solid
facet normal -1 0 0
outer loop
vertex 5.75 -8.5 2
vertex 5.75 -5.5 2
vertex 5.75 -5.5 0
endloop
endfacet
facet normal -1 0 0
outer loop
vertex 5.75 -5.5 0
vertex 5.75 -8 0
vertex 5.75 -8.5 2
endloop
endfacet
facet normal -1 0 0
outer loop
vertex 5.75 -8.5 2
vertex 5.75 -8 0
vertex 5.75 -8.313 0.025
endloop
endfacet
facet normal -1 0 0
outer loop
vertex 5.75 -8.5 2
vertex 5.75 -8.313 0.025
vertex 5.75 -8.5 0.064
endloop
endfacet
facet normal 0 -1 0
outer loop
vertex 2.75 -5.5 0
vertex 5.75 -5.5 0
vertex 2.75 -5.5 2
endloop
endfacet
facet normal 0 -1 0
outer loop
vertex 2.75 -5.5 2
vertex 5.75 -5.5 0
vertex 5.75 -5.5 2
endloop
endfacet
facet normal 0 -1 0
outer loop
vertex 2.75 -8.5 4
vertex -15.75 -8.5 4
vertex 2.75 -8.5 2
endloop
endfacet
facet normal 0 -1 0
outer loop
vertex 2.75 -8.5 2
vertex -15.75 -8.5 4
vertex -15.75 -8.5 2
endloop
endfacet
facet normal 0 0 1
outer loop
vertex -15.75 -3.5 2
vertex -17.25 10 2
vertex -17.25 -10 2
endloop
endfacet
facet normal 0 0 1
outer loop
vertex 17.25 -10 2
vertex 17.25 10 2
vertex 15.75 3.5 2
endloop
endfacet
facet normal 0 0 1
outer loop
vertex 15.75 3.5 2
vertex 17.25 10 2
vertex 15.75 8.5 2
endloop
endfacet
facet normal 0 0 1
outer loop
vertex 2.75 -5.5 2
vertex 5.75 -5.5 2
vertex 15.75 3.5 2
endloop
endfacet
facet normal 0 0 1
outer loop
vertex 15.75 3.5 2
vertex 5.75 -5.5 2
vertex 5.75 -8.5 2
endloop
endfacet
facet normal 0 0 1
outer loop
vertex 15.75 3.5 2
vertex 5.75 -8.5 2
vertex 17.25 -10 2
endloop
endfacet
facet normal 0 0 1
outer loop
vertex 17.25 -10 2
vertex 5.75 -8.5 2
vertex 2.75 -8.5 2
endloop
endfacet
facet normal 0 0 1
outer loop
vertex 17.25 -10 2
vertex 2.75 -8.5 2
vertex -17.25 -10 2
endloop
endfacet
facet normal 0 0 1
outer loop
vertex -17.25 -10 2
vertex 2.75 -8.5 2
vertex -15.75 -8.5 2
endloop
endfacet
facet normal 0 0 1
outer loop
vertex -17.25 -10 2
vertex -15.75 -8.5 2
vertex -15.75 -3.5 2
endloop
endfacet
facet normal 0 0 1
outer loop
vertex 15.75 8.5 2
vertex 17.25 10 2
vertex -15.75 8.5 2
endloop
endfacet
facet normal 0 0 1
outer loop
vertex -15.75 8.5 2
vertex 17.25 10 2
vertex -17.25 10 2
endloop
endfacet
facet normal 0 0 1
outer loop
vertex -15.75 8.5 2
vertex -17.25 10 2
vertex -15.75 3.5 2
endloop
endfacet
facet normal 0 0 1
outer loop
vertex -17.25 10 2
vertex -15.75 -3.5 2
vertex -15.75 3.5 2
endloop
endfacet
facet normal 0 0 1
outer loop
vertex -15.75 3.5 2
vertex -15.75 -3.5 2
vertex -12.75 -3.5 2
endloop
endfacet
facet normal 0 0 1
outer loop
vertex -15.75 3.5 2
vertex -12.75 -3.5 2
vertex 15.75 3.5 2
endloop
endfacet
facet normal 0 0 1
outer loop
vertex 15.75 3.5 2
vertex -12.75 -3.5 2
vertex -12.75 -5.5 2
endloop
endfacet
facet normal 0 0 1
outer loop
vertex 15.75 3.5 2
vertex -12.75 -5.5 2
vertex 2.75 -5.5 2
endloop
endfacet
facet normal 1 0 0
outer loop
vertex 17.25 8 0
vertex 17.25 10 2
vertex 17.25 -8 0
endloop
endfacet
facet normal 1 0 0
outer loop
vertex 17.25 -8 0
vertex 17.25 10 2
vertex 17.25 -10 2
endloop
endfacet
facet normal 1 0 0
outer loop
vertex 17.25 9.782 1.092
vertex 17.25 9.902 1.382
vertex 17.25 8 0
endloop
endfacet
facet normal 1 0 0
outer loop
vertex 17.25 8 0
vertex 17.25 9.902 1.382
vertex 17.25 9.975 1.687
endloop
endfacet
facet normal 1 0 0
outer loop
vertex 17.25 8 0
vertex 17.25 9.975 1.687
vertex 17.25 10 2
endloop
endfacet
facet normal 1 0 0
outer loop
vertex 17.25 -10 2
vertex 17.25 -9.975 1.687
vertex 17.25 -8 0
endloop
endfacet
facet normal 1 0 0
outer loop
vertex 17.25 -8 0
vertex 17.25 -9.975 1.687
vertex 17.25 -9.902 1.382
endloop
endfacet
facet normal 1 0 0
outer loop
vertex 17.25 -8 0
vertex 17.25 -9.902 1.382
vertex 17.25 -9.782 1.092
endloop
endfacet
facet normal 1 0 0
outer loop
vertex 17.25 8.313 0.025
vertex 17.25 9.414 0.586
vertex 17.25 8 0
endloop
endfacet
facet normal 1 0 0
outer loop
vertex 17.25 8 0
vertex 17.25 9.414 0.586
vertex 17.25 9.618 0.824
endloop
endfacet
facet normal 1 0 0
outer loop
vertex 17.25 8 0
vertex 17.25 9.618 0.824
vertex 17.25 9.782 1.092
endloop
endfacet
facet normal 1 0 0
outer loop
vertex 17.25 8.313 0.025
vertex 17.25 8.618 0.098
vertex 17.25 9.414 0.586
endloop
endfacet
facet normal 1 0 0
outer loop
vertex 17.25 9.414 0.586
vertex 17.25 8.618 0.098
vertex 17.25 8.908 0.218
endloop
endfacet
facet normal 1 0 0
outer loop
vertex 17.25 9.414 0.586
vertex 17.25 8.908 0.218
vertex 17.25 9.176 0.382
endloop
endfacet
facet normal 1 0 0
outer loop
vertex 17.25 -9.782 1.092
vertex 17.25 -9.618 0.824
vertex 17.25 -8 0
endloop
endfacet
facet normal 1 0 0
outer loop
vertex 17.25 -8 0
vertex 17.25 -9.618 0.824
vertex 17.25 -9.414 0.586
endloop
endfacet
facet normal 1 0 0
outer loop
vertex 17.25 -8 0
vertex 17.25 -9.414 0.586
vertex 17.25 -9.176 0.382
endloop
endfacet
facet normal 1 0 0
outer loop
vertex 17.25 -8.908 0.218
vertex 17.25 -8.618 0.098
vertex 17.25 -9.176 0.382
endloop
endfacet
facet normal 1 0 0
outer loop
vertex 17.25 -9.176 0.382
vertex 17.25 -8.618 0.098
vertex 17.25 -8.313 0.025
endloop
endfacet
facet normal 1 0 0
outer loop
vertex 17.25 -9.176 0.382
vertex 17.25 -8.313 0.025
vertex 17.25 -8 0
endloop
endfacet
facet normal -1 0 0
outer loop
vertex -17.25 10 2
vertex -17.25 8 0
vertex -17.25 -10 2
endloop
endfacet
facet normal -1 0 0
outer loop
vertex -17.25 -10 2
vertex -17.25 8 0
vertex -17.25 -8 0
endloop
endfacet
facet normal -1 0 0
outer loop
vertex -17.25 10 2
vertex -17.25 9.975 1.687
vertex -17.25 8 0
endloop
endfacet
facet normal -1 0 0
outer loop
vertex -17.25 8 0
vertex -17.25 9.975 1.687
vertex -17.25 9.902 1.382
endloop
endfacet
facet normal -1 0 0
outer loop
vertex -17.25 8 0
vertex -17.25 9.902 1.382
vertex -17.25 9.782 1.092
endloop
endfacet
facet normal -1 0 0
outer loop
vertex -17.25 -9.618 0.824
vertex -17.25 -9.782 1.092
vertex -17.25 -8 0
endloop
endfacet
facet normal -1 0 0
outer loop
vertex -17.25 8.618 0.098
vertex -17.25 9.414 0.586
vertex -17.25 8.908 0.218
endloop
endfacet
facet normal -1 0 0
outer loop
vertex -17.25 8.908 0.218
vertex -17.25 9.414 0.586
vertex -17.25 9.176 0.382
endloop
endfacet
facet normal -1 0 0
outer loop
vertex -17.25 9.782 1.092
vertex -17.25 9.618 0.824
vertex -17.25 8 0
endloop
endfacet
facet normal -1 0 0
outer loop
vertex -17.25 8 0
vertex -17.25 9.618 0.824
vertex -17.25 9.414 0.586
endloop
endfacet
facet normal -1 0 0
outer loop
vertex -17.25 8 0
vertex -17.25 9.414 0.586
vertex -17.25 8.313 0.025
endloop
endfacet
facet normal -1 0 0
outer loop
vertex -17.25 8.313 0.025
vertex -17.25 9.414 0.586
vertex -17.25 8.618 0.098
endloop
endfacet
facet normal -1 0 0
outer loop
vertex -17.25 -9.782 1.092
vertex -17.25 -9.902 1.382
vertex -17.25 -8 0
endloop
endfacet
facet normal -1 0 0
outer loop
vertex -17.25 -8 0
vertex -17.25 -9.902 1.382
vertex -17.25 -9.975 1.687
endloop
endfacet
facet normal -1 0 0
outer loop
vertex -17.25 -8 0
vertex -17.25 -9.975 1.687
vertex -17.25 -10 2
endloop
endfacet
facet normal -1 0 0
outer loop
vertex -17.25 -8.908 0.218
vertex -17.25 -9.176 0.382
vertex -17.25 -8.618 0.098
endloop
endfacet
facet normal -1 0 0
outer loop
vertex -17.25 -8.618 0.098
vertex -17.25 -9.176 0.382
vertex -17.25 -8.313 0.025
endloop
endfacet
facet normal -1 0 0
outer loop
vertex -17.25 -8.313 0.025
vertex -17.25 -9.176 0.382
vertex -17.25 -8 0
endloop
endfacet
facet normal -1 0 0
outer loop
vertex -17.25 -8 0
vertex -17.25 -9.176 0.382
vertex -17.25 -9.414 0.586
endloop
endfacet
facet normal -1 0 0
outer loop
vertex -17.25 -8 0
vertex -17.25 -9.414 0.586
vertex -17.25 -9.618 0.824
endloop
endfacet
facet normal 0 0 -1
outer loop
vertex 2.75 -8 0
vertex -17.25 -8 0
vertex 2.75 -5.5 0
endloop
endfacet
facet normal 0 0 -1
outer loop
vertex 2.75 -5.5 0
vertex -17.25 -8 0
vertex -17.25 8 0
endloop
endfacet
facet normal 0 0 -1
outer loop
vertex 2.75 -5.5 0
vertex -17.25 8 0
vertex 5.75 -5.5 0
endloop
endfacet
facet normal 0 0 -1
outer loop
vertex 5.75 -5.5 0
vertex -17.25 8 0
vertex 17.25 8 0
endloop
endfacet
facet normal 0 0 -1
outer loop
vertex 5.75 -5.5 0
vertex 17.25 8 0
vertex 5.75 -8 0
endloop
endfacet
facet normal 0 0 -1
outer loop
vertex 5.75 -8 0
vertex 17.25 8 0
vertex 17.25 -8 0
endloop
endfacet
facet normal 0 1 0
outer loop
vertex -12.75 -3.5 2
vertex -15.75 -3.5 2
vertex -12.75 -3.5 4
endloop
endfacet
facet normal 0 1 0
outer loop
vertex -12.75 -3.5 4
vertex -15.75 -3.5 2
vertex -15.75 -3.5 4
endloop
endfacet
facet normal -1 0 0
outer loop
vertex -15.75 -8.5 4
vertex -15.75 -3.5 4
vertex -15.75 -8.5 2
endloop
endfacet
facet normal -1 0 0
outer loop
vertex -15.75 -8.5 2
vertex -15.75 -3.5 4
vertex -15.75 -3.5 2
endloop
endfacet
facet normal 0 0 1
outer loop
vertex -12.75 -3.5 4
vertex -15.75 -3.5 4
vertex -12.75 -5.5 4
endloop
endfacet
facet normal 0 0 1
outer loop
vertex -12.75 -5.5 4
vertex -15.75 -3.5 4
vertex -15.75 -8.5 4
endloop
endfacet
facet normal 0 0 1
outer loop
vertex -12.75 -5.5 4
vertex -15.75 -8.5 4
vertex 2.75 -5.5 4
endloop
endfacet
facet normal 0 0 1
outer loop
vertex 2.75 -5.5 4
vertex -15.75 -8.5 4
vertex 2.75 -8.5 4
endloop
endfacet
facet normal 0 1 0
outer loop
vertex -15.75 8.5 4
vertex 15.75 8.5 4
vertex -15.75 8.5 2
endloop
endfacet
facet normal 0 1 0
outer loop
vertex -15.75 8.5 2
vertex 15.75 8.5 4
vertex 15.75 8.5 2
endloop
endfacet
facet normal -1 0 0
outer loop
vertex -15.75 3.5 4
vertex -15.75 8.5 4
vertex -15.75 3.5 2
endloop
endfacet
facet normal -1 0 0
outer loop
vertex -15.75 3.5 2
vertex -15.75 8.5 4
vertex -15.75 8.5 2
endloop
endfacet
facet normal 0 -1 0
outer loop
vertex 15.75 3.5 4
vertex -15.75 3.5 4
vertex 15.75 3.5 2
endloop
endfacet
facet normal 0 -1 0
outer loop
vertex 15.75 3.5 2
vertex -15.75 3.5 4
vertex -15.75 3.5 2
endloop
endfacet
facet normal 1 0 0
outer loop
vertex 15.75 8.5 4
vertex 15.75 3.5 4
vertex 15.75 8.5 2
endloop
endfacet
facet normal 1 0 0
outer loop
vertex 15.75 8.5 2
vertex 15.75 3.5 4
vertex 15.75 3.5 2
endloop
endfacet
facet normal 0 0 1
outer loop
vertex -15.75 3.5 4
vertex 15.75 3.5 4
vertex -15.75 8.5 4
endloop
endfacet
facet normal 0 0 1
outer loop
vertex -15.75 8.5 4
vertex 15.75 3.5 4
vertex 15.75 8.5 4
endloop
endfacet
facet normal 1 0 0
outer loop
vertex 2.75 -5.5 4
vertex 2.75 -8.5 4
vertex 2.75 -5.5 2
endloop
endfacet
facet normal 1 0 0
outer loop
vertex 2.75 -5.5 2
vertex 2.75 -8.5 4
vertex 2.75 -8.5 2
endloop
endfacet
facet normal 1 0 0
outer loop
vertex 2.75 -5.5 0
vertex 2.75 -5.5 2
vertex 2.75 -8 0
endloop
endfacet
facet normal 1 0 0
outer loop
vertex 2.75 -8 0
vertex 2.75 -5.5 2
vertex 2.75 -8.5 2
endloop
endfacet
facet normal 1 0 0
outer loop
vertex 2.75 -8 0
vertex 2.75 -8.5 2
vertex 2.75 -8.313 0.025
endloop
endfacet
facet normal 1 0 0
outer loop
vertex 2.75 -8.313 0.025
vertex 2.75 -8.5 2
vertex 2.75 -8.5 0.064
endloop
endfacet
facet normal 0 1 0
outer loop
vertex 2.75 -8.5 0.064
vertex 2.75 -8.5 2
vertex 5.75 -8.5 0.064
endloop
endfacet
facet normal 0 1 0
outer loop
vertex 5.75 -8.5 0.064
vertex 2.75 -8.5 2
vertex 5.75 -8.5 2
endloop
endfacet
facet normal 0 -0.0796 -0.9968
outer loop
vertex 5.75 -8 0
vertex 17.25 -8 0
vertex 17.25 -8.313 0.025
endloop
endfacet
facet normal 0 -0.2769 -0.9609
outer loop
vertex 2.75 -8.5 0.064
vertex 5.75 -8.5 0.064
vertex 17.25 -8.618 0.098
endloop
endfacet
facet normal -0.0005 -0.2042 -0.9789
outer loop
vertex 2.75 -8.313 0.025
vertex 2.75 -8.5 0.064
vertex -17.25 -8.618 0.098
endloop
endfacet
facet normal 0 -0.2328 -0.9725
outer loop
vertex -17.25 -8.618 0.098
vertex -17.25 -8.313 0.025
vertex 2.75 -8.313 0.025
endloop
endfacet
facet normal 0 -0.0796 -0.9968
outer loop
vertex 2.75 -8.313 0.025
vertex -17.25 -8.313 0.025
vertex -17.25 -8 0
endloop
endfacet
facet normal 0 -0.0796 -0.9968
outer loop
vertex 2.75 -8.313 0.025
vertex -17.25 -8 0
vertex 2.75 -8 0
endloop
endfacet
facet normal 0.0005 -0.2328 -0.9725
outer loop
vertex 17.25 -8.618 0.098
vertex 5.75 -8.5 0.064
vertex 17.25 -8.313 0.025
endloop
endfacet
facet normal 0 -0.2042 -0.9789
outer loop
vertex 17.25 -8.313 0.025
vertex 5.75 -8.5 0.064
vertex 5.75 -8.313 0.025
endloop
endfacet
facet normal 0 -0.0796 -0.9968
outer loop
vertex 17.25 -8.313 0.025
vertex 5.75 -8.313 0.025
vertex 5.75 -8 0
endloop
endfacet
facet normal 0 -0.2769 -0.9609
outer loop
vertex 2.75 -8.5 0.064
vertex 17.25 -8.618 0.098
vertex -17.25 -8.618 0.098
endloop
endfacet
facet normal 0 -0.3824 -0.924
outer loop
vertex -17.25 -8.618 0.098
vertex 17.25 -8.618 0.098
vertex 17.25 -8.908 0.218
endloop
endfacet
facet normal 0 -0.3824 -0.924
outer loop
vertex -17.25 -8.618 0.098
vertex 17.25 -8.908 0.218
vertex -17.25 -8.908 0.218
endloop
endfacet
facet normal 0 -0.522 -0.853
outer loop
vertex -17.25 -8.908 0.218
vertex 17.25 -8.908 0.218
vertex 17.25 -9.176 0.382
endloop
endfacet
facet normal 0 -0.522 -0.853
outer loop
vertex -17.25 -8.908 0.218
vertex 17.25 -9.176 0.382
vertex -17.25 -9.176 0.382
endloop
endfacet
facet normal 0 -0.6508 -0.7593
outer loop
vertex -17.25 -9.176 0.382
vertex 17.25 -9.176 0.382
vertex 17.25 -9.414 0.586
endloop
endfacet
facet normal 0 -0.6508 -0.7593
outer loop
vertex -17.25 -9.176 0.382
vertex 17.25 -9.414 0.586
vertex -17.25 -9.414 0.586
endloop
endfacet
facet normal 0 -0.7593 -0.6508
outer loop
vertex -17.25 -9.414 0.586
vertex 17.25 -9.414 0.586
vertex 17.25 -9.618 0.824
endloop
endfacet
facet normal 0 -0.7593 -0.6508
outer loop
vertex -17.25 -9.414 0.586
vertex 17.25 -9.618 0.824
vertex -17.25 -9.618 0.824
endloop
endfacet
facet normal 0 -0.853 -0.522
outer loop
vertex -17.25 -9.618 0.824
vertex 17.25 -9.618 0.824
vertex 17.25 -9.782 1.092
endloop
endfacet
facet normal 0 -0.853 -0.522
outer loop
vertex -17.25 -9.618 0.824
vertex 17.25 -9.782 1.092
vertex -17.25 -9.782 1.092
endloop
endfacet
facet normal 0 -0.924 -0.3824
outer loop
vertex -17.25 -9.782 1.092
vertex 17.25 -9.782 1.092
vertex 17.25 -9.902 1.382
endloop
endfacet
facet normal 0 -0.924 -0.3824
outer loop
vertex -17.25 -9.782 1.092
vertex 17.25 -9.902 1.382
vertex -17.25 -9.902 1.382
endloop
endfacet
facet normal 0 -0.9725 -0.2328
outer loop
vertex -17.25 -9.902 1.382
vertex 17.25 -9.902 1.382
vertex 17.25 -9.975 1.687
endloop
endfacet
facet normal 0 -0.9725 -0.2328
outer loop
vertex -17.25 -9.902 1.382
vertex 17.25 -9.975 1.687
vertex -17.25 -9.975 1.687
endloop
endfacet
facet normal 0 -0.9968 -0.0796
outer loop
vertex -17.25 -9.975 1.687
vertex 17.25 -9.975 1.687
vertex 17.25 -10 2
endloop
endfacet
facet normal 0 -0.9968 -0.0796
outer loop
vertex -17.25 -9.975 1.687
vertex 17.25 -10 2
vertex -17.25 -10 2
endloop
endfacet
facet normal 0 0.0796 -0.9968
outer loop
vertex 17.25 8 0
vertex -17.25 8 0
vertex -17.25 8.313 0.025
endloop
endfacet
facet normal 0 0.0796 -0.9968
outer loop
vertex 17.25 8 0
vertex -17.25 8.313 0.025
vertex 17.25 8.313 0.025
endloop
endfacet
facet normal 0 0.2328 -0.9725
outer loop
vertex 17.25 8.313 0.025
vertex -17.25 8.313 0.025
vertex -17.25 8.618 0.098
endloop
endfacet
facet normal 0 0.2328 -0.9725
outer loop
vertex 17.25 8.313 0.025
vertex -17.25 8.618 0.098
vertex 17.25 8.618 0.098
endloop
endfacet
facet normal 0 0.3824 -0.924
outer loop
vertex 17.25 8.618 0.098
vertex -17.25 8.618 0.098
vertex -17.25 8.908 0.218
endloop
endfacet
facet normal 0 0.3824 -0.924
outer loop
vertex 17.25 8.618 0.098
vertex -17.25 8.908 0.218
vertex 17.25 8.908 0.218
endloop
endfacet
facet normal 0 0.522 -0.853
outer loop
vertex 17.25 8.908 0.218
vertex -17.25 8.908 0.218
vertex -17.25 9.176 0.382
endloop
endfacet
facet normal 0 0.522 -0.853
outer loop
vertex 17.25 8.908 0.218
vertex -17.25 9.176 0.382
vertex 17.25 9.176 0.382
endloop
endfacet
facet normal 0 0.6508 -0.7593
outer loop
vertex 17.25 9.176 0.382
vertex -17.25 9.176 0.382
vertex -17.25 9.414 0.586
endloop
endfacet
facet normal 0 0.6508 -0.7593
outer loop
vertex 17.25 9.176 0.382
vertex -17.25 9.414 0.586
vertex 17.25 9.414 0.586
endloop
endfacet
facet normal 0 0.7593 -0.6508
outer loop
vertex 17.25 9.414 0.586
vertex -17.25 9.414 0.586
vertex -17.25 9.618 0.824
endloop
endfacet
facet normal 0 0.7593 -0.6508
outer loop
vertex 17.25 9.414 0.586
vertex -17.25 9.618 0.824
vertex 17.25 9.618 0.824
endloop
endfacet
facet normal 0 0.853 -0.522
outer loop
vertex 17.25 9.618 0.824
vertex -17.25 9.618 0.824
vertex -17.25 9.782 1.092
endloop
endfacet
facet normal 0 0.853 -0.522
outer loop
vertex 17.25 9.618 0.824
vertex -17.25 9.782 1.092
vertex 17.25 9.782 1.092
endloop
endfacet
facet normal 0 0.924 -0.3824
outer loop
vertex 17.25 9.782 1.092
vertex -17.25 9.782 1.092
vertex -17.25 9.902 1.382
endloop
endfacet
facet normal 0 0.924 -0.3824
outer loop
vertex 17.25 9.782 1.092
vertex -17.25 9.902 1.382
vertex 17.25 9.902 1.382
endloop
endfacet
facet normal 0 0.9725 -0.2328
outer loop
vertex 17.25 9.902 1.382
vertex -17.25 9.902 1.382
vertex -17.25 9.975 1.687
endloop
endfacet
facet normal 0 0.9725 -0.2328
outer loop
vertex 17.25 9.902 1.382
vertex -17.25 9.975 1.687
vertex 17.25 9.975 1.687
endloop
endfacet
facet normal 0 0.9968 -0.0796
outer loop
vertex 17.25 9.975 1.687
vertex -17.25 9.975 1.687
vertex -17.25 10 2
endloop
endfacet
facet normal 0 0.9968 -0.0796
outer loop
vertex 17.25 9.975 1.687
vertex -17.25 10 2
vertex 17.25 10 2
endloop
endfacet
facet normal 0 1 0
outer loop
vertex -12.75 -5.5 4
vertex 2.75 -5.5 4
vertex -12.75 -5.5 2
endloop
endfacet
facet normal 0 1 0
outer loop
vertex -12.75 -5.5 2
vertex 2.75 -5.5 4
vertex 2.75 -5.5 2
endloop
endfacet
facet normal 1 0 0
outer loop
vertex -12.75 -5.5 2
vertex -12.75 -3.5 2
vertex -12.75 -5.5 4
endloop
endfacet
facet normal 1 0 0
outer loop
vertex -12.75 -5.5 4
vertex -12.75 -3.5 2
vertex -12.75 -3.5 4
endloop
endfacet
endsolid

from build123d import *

# Parameters (mm, degrees)
SKETCH1_W           = 34.5
SKETCH1_H           = 20
BOSS_EXTRUDE1_DEPTH = 2
SKETCH2_W           = 31.5
SKETCH2_H           = 5
BOSS_EXTRUDE2_DEPTH = 2
SKETCH3_W           = 3
SKETCH3_H           = 3
CUT_EXTRUDE1_DEPTH  = 10
FILLET1_R           = 2
CUT_EXTRUDE2_DEPTH  = 2


with BuildPart() as part:
    # Sketch1 → Boss-Extrude1 (new body)
    with BuildSketch(Plane.XY):
        Rectangle(SKETCH1_W, SKETCH1_H)
    extrude(amount=BOSS_EXTRUDE1_DEPTH)

    # Sketch2 → Boss-Extrude2 (add)
    with BuildSketch(Plane.XY.offset(2)):
        with Locations((0, 6)):
            Rectangle(SKETCH2_W, SKETCH2_H)
        with Locations((0, -6)):
            Rectangle(SKETCH2_W, SKETCH2_H)
    extrude(amount=BOSS_EXTRUDE2_DEPTH)

    # Sketch3 → Cut-Extrude1 (cut)
    with BuildSketch(Plane(origin=(0, 0, 0), x_dir=(-1, 0, 0), z_dir=(0, 0, -1))):
        with Locations((-4.25, -7)):
            Rectangle(SKETCH3_W, SKETCH3_H)
    extrude(amount=-CUT_EXTRUDE1_DEPTH, mode=Mode.SUBTRACT)

    # Fillet1
    # the kernel refuses this fillet: 2 mm, written as the material it takes off along each edge
    with BuildSketch(Plane(origin=(22.25, -10, 0), x_dir=(0, 1, 0), z_dir=(-1, 0, 0))) as fillet1_piece_1:
        with BuildLine():
            CenterArc((FILLET1_R, -FILLET1_R), FILLET1_R, 90, 90)
            Line((0, -FILLET1_R), (0, 0))
            Line((0, 0), (FILLET1_R, 0))
        make_face()
    extrude(amount=44.5, mode=Mode.SUBTRACT)
    with BuildSketch(Plane(origin=(-22.25, 10, 0), x_dir=(0, 0, 1), z_dir=(1, 0, 0))) as fillet1_piece_2:
        with BuildLine():
            CenterArc((FILLET1_R, FILLET1_R), FILLET1_R, 180, 90)
            Line((0, FILLET1_R), (0, 0))
            Line((0, 0), (FILLET1_R, 0))
        make_face()
    extrude(amount=44.5, mode=Mode.SUBTRACT)

    # Sketch4 → Cut-Extrude2 (cut)
    with BuildSketch(Plane.XY.offset(4)):
        Polygon((15.75, -8.5), (5.75, -8.5), (5.75, -5.5), (-12.75, -5.5), (-12.75, -3.5), (5.75, -3.5), (15.75, -3.5), align=None)
    extrude(amount=-CUT_EXTRUDE2_DEPTH, mode=Mode.SUBTRACT)


solid = part.part
